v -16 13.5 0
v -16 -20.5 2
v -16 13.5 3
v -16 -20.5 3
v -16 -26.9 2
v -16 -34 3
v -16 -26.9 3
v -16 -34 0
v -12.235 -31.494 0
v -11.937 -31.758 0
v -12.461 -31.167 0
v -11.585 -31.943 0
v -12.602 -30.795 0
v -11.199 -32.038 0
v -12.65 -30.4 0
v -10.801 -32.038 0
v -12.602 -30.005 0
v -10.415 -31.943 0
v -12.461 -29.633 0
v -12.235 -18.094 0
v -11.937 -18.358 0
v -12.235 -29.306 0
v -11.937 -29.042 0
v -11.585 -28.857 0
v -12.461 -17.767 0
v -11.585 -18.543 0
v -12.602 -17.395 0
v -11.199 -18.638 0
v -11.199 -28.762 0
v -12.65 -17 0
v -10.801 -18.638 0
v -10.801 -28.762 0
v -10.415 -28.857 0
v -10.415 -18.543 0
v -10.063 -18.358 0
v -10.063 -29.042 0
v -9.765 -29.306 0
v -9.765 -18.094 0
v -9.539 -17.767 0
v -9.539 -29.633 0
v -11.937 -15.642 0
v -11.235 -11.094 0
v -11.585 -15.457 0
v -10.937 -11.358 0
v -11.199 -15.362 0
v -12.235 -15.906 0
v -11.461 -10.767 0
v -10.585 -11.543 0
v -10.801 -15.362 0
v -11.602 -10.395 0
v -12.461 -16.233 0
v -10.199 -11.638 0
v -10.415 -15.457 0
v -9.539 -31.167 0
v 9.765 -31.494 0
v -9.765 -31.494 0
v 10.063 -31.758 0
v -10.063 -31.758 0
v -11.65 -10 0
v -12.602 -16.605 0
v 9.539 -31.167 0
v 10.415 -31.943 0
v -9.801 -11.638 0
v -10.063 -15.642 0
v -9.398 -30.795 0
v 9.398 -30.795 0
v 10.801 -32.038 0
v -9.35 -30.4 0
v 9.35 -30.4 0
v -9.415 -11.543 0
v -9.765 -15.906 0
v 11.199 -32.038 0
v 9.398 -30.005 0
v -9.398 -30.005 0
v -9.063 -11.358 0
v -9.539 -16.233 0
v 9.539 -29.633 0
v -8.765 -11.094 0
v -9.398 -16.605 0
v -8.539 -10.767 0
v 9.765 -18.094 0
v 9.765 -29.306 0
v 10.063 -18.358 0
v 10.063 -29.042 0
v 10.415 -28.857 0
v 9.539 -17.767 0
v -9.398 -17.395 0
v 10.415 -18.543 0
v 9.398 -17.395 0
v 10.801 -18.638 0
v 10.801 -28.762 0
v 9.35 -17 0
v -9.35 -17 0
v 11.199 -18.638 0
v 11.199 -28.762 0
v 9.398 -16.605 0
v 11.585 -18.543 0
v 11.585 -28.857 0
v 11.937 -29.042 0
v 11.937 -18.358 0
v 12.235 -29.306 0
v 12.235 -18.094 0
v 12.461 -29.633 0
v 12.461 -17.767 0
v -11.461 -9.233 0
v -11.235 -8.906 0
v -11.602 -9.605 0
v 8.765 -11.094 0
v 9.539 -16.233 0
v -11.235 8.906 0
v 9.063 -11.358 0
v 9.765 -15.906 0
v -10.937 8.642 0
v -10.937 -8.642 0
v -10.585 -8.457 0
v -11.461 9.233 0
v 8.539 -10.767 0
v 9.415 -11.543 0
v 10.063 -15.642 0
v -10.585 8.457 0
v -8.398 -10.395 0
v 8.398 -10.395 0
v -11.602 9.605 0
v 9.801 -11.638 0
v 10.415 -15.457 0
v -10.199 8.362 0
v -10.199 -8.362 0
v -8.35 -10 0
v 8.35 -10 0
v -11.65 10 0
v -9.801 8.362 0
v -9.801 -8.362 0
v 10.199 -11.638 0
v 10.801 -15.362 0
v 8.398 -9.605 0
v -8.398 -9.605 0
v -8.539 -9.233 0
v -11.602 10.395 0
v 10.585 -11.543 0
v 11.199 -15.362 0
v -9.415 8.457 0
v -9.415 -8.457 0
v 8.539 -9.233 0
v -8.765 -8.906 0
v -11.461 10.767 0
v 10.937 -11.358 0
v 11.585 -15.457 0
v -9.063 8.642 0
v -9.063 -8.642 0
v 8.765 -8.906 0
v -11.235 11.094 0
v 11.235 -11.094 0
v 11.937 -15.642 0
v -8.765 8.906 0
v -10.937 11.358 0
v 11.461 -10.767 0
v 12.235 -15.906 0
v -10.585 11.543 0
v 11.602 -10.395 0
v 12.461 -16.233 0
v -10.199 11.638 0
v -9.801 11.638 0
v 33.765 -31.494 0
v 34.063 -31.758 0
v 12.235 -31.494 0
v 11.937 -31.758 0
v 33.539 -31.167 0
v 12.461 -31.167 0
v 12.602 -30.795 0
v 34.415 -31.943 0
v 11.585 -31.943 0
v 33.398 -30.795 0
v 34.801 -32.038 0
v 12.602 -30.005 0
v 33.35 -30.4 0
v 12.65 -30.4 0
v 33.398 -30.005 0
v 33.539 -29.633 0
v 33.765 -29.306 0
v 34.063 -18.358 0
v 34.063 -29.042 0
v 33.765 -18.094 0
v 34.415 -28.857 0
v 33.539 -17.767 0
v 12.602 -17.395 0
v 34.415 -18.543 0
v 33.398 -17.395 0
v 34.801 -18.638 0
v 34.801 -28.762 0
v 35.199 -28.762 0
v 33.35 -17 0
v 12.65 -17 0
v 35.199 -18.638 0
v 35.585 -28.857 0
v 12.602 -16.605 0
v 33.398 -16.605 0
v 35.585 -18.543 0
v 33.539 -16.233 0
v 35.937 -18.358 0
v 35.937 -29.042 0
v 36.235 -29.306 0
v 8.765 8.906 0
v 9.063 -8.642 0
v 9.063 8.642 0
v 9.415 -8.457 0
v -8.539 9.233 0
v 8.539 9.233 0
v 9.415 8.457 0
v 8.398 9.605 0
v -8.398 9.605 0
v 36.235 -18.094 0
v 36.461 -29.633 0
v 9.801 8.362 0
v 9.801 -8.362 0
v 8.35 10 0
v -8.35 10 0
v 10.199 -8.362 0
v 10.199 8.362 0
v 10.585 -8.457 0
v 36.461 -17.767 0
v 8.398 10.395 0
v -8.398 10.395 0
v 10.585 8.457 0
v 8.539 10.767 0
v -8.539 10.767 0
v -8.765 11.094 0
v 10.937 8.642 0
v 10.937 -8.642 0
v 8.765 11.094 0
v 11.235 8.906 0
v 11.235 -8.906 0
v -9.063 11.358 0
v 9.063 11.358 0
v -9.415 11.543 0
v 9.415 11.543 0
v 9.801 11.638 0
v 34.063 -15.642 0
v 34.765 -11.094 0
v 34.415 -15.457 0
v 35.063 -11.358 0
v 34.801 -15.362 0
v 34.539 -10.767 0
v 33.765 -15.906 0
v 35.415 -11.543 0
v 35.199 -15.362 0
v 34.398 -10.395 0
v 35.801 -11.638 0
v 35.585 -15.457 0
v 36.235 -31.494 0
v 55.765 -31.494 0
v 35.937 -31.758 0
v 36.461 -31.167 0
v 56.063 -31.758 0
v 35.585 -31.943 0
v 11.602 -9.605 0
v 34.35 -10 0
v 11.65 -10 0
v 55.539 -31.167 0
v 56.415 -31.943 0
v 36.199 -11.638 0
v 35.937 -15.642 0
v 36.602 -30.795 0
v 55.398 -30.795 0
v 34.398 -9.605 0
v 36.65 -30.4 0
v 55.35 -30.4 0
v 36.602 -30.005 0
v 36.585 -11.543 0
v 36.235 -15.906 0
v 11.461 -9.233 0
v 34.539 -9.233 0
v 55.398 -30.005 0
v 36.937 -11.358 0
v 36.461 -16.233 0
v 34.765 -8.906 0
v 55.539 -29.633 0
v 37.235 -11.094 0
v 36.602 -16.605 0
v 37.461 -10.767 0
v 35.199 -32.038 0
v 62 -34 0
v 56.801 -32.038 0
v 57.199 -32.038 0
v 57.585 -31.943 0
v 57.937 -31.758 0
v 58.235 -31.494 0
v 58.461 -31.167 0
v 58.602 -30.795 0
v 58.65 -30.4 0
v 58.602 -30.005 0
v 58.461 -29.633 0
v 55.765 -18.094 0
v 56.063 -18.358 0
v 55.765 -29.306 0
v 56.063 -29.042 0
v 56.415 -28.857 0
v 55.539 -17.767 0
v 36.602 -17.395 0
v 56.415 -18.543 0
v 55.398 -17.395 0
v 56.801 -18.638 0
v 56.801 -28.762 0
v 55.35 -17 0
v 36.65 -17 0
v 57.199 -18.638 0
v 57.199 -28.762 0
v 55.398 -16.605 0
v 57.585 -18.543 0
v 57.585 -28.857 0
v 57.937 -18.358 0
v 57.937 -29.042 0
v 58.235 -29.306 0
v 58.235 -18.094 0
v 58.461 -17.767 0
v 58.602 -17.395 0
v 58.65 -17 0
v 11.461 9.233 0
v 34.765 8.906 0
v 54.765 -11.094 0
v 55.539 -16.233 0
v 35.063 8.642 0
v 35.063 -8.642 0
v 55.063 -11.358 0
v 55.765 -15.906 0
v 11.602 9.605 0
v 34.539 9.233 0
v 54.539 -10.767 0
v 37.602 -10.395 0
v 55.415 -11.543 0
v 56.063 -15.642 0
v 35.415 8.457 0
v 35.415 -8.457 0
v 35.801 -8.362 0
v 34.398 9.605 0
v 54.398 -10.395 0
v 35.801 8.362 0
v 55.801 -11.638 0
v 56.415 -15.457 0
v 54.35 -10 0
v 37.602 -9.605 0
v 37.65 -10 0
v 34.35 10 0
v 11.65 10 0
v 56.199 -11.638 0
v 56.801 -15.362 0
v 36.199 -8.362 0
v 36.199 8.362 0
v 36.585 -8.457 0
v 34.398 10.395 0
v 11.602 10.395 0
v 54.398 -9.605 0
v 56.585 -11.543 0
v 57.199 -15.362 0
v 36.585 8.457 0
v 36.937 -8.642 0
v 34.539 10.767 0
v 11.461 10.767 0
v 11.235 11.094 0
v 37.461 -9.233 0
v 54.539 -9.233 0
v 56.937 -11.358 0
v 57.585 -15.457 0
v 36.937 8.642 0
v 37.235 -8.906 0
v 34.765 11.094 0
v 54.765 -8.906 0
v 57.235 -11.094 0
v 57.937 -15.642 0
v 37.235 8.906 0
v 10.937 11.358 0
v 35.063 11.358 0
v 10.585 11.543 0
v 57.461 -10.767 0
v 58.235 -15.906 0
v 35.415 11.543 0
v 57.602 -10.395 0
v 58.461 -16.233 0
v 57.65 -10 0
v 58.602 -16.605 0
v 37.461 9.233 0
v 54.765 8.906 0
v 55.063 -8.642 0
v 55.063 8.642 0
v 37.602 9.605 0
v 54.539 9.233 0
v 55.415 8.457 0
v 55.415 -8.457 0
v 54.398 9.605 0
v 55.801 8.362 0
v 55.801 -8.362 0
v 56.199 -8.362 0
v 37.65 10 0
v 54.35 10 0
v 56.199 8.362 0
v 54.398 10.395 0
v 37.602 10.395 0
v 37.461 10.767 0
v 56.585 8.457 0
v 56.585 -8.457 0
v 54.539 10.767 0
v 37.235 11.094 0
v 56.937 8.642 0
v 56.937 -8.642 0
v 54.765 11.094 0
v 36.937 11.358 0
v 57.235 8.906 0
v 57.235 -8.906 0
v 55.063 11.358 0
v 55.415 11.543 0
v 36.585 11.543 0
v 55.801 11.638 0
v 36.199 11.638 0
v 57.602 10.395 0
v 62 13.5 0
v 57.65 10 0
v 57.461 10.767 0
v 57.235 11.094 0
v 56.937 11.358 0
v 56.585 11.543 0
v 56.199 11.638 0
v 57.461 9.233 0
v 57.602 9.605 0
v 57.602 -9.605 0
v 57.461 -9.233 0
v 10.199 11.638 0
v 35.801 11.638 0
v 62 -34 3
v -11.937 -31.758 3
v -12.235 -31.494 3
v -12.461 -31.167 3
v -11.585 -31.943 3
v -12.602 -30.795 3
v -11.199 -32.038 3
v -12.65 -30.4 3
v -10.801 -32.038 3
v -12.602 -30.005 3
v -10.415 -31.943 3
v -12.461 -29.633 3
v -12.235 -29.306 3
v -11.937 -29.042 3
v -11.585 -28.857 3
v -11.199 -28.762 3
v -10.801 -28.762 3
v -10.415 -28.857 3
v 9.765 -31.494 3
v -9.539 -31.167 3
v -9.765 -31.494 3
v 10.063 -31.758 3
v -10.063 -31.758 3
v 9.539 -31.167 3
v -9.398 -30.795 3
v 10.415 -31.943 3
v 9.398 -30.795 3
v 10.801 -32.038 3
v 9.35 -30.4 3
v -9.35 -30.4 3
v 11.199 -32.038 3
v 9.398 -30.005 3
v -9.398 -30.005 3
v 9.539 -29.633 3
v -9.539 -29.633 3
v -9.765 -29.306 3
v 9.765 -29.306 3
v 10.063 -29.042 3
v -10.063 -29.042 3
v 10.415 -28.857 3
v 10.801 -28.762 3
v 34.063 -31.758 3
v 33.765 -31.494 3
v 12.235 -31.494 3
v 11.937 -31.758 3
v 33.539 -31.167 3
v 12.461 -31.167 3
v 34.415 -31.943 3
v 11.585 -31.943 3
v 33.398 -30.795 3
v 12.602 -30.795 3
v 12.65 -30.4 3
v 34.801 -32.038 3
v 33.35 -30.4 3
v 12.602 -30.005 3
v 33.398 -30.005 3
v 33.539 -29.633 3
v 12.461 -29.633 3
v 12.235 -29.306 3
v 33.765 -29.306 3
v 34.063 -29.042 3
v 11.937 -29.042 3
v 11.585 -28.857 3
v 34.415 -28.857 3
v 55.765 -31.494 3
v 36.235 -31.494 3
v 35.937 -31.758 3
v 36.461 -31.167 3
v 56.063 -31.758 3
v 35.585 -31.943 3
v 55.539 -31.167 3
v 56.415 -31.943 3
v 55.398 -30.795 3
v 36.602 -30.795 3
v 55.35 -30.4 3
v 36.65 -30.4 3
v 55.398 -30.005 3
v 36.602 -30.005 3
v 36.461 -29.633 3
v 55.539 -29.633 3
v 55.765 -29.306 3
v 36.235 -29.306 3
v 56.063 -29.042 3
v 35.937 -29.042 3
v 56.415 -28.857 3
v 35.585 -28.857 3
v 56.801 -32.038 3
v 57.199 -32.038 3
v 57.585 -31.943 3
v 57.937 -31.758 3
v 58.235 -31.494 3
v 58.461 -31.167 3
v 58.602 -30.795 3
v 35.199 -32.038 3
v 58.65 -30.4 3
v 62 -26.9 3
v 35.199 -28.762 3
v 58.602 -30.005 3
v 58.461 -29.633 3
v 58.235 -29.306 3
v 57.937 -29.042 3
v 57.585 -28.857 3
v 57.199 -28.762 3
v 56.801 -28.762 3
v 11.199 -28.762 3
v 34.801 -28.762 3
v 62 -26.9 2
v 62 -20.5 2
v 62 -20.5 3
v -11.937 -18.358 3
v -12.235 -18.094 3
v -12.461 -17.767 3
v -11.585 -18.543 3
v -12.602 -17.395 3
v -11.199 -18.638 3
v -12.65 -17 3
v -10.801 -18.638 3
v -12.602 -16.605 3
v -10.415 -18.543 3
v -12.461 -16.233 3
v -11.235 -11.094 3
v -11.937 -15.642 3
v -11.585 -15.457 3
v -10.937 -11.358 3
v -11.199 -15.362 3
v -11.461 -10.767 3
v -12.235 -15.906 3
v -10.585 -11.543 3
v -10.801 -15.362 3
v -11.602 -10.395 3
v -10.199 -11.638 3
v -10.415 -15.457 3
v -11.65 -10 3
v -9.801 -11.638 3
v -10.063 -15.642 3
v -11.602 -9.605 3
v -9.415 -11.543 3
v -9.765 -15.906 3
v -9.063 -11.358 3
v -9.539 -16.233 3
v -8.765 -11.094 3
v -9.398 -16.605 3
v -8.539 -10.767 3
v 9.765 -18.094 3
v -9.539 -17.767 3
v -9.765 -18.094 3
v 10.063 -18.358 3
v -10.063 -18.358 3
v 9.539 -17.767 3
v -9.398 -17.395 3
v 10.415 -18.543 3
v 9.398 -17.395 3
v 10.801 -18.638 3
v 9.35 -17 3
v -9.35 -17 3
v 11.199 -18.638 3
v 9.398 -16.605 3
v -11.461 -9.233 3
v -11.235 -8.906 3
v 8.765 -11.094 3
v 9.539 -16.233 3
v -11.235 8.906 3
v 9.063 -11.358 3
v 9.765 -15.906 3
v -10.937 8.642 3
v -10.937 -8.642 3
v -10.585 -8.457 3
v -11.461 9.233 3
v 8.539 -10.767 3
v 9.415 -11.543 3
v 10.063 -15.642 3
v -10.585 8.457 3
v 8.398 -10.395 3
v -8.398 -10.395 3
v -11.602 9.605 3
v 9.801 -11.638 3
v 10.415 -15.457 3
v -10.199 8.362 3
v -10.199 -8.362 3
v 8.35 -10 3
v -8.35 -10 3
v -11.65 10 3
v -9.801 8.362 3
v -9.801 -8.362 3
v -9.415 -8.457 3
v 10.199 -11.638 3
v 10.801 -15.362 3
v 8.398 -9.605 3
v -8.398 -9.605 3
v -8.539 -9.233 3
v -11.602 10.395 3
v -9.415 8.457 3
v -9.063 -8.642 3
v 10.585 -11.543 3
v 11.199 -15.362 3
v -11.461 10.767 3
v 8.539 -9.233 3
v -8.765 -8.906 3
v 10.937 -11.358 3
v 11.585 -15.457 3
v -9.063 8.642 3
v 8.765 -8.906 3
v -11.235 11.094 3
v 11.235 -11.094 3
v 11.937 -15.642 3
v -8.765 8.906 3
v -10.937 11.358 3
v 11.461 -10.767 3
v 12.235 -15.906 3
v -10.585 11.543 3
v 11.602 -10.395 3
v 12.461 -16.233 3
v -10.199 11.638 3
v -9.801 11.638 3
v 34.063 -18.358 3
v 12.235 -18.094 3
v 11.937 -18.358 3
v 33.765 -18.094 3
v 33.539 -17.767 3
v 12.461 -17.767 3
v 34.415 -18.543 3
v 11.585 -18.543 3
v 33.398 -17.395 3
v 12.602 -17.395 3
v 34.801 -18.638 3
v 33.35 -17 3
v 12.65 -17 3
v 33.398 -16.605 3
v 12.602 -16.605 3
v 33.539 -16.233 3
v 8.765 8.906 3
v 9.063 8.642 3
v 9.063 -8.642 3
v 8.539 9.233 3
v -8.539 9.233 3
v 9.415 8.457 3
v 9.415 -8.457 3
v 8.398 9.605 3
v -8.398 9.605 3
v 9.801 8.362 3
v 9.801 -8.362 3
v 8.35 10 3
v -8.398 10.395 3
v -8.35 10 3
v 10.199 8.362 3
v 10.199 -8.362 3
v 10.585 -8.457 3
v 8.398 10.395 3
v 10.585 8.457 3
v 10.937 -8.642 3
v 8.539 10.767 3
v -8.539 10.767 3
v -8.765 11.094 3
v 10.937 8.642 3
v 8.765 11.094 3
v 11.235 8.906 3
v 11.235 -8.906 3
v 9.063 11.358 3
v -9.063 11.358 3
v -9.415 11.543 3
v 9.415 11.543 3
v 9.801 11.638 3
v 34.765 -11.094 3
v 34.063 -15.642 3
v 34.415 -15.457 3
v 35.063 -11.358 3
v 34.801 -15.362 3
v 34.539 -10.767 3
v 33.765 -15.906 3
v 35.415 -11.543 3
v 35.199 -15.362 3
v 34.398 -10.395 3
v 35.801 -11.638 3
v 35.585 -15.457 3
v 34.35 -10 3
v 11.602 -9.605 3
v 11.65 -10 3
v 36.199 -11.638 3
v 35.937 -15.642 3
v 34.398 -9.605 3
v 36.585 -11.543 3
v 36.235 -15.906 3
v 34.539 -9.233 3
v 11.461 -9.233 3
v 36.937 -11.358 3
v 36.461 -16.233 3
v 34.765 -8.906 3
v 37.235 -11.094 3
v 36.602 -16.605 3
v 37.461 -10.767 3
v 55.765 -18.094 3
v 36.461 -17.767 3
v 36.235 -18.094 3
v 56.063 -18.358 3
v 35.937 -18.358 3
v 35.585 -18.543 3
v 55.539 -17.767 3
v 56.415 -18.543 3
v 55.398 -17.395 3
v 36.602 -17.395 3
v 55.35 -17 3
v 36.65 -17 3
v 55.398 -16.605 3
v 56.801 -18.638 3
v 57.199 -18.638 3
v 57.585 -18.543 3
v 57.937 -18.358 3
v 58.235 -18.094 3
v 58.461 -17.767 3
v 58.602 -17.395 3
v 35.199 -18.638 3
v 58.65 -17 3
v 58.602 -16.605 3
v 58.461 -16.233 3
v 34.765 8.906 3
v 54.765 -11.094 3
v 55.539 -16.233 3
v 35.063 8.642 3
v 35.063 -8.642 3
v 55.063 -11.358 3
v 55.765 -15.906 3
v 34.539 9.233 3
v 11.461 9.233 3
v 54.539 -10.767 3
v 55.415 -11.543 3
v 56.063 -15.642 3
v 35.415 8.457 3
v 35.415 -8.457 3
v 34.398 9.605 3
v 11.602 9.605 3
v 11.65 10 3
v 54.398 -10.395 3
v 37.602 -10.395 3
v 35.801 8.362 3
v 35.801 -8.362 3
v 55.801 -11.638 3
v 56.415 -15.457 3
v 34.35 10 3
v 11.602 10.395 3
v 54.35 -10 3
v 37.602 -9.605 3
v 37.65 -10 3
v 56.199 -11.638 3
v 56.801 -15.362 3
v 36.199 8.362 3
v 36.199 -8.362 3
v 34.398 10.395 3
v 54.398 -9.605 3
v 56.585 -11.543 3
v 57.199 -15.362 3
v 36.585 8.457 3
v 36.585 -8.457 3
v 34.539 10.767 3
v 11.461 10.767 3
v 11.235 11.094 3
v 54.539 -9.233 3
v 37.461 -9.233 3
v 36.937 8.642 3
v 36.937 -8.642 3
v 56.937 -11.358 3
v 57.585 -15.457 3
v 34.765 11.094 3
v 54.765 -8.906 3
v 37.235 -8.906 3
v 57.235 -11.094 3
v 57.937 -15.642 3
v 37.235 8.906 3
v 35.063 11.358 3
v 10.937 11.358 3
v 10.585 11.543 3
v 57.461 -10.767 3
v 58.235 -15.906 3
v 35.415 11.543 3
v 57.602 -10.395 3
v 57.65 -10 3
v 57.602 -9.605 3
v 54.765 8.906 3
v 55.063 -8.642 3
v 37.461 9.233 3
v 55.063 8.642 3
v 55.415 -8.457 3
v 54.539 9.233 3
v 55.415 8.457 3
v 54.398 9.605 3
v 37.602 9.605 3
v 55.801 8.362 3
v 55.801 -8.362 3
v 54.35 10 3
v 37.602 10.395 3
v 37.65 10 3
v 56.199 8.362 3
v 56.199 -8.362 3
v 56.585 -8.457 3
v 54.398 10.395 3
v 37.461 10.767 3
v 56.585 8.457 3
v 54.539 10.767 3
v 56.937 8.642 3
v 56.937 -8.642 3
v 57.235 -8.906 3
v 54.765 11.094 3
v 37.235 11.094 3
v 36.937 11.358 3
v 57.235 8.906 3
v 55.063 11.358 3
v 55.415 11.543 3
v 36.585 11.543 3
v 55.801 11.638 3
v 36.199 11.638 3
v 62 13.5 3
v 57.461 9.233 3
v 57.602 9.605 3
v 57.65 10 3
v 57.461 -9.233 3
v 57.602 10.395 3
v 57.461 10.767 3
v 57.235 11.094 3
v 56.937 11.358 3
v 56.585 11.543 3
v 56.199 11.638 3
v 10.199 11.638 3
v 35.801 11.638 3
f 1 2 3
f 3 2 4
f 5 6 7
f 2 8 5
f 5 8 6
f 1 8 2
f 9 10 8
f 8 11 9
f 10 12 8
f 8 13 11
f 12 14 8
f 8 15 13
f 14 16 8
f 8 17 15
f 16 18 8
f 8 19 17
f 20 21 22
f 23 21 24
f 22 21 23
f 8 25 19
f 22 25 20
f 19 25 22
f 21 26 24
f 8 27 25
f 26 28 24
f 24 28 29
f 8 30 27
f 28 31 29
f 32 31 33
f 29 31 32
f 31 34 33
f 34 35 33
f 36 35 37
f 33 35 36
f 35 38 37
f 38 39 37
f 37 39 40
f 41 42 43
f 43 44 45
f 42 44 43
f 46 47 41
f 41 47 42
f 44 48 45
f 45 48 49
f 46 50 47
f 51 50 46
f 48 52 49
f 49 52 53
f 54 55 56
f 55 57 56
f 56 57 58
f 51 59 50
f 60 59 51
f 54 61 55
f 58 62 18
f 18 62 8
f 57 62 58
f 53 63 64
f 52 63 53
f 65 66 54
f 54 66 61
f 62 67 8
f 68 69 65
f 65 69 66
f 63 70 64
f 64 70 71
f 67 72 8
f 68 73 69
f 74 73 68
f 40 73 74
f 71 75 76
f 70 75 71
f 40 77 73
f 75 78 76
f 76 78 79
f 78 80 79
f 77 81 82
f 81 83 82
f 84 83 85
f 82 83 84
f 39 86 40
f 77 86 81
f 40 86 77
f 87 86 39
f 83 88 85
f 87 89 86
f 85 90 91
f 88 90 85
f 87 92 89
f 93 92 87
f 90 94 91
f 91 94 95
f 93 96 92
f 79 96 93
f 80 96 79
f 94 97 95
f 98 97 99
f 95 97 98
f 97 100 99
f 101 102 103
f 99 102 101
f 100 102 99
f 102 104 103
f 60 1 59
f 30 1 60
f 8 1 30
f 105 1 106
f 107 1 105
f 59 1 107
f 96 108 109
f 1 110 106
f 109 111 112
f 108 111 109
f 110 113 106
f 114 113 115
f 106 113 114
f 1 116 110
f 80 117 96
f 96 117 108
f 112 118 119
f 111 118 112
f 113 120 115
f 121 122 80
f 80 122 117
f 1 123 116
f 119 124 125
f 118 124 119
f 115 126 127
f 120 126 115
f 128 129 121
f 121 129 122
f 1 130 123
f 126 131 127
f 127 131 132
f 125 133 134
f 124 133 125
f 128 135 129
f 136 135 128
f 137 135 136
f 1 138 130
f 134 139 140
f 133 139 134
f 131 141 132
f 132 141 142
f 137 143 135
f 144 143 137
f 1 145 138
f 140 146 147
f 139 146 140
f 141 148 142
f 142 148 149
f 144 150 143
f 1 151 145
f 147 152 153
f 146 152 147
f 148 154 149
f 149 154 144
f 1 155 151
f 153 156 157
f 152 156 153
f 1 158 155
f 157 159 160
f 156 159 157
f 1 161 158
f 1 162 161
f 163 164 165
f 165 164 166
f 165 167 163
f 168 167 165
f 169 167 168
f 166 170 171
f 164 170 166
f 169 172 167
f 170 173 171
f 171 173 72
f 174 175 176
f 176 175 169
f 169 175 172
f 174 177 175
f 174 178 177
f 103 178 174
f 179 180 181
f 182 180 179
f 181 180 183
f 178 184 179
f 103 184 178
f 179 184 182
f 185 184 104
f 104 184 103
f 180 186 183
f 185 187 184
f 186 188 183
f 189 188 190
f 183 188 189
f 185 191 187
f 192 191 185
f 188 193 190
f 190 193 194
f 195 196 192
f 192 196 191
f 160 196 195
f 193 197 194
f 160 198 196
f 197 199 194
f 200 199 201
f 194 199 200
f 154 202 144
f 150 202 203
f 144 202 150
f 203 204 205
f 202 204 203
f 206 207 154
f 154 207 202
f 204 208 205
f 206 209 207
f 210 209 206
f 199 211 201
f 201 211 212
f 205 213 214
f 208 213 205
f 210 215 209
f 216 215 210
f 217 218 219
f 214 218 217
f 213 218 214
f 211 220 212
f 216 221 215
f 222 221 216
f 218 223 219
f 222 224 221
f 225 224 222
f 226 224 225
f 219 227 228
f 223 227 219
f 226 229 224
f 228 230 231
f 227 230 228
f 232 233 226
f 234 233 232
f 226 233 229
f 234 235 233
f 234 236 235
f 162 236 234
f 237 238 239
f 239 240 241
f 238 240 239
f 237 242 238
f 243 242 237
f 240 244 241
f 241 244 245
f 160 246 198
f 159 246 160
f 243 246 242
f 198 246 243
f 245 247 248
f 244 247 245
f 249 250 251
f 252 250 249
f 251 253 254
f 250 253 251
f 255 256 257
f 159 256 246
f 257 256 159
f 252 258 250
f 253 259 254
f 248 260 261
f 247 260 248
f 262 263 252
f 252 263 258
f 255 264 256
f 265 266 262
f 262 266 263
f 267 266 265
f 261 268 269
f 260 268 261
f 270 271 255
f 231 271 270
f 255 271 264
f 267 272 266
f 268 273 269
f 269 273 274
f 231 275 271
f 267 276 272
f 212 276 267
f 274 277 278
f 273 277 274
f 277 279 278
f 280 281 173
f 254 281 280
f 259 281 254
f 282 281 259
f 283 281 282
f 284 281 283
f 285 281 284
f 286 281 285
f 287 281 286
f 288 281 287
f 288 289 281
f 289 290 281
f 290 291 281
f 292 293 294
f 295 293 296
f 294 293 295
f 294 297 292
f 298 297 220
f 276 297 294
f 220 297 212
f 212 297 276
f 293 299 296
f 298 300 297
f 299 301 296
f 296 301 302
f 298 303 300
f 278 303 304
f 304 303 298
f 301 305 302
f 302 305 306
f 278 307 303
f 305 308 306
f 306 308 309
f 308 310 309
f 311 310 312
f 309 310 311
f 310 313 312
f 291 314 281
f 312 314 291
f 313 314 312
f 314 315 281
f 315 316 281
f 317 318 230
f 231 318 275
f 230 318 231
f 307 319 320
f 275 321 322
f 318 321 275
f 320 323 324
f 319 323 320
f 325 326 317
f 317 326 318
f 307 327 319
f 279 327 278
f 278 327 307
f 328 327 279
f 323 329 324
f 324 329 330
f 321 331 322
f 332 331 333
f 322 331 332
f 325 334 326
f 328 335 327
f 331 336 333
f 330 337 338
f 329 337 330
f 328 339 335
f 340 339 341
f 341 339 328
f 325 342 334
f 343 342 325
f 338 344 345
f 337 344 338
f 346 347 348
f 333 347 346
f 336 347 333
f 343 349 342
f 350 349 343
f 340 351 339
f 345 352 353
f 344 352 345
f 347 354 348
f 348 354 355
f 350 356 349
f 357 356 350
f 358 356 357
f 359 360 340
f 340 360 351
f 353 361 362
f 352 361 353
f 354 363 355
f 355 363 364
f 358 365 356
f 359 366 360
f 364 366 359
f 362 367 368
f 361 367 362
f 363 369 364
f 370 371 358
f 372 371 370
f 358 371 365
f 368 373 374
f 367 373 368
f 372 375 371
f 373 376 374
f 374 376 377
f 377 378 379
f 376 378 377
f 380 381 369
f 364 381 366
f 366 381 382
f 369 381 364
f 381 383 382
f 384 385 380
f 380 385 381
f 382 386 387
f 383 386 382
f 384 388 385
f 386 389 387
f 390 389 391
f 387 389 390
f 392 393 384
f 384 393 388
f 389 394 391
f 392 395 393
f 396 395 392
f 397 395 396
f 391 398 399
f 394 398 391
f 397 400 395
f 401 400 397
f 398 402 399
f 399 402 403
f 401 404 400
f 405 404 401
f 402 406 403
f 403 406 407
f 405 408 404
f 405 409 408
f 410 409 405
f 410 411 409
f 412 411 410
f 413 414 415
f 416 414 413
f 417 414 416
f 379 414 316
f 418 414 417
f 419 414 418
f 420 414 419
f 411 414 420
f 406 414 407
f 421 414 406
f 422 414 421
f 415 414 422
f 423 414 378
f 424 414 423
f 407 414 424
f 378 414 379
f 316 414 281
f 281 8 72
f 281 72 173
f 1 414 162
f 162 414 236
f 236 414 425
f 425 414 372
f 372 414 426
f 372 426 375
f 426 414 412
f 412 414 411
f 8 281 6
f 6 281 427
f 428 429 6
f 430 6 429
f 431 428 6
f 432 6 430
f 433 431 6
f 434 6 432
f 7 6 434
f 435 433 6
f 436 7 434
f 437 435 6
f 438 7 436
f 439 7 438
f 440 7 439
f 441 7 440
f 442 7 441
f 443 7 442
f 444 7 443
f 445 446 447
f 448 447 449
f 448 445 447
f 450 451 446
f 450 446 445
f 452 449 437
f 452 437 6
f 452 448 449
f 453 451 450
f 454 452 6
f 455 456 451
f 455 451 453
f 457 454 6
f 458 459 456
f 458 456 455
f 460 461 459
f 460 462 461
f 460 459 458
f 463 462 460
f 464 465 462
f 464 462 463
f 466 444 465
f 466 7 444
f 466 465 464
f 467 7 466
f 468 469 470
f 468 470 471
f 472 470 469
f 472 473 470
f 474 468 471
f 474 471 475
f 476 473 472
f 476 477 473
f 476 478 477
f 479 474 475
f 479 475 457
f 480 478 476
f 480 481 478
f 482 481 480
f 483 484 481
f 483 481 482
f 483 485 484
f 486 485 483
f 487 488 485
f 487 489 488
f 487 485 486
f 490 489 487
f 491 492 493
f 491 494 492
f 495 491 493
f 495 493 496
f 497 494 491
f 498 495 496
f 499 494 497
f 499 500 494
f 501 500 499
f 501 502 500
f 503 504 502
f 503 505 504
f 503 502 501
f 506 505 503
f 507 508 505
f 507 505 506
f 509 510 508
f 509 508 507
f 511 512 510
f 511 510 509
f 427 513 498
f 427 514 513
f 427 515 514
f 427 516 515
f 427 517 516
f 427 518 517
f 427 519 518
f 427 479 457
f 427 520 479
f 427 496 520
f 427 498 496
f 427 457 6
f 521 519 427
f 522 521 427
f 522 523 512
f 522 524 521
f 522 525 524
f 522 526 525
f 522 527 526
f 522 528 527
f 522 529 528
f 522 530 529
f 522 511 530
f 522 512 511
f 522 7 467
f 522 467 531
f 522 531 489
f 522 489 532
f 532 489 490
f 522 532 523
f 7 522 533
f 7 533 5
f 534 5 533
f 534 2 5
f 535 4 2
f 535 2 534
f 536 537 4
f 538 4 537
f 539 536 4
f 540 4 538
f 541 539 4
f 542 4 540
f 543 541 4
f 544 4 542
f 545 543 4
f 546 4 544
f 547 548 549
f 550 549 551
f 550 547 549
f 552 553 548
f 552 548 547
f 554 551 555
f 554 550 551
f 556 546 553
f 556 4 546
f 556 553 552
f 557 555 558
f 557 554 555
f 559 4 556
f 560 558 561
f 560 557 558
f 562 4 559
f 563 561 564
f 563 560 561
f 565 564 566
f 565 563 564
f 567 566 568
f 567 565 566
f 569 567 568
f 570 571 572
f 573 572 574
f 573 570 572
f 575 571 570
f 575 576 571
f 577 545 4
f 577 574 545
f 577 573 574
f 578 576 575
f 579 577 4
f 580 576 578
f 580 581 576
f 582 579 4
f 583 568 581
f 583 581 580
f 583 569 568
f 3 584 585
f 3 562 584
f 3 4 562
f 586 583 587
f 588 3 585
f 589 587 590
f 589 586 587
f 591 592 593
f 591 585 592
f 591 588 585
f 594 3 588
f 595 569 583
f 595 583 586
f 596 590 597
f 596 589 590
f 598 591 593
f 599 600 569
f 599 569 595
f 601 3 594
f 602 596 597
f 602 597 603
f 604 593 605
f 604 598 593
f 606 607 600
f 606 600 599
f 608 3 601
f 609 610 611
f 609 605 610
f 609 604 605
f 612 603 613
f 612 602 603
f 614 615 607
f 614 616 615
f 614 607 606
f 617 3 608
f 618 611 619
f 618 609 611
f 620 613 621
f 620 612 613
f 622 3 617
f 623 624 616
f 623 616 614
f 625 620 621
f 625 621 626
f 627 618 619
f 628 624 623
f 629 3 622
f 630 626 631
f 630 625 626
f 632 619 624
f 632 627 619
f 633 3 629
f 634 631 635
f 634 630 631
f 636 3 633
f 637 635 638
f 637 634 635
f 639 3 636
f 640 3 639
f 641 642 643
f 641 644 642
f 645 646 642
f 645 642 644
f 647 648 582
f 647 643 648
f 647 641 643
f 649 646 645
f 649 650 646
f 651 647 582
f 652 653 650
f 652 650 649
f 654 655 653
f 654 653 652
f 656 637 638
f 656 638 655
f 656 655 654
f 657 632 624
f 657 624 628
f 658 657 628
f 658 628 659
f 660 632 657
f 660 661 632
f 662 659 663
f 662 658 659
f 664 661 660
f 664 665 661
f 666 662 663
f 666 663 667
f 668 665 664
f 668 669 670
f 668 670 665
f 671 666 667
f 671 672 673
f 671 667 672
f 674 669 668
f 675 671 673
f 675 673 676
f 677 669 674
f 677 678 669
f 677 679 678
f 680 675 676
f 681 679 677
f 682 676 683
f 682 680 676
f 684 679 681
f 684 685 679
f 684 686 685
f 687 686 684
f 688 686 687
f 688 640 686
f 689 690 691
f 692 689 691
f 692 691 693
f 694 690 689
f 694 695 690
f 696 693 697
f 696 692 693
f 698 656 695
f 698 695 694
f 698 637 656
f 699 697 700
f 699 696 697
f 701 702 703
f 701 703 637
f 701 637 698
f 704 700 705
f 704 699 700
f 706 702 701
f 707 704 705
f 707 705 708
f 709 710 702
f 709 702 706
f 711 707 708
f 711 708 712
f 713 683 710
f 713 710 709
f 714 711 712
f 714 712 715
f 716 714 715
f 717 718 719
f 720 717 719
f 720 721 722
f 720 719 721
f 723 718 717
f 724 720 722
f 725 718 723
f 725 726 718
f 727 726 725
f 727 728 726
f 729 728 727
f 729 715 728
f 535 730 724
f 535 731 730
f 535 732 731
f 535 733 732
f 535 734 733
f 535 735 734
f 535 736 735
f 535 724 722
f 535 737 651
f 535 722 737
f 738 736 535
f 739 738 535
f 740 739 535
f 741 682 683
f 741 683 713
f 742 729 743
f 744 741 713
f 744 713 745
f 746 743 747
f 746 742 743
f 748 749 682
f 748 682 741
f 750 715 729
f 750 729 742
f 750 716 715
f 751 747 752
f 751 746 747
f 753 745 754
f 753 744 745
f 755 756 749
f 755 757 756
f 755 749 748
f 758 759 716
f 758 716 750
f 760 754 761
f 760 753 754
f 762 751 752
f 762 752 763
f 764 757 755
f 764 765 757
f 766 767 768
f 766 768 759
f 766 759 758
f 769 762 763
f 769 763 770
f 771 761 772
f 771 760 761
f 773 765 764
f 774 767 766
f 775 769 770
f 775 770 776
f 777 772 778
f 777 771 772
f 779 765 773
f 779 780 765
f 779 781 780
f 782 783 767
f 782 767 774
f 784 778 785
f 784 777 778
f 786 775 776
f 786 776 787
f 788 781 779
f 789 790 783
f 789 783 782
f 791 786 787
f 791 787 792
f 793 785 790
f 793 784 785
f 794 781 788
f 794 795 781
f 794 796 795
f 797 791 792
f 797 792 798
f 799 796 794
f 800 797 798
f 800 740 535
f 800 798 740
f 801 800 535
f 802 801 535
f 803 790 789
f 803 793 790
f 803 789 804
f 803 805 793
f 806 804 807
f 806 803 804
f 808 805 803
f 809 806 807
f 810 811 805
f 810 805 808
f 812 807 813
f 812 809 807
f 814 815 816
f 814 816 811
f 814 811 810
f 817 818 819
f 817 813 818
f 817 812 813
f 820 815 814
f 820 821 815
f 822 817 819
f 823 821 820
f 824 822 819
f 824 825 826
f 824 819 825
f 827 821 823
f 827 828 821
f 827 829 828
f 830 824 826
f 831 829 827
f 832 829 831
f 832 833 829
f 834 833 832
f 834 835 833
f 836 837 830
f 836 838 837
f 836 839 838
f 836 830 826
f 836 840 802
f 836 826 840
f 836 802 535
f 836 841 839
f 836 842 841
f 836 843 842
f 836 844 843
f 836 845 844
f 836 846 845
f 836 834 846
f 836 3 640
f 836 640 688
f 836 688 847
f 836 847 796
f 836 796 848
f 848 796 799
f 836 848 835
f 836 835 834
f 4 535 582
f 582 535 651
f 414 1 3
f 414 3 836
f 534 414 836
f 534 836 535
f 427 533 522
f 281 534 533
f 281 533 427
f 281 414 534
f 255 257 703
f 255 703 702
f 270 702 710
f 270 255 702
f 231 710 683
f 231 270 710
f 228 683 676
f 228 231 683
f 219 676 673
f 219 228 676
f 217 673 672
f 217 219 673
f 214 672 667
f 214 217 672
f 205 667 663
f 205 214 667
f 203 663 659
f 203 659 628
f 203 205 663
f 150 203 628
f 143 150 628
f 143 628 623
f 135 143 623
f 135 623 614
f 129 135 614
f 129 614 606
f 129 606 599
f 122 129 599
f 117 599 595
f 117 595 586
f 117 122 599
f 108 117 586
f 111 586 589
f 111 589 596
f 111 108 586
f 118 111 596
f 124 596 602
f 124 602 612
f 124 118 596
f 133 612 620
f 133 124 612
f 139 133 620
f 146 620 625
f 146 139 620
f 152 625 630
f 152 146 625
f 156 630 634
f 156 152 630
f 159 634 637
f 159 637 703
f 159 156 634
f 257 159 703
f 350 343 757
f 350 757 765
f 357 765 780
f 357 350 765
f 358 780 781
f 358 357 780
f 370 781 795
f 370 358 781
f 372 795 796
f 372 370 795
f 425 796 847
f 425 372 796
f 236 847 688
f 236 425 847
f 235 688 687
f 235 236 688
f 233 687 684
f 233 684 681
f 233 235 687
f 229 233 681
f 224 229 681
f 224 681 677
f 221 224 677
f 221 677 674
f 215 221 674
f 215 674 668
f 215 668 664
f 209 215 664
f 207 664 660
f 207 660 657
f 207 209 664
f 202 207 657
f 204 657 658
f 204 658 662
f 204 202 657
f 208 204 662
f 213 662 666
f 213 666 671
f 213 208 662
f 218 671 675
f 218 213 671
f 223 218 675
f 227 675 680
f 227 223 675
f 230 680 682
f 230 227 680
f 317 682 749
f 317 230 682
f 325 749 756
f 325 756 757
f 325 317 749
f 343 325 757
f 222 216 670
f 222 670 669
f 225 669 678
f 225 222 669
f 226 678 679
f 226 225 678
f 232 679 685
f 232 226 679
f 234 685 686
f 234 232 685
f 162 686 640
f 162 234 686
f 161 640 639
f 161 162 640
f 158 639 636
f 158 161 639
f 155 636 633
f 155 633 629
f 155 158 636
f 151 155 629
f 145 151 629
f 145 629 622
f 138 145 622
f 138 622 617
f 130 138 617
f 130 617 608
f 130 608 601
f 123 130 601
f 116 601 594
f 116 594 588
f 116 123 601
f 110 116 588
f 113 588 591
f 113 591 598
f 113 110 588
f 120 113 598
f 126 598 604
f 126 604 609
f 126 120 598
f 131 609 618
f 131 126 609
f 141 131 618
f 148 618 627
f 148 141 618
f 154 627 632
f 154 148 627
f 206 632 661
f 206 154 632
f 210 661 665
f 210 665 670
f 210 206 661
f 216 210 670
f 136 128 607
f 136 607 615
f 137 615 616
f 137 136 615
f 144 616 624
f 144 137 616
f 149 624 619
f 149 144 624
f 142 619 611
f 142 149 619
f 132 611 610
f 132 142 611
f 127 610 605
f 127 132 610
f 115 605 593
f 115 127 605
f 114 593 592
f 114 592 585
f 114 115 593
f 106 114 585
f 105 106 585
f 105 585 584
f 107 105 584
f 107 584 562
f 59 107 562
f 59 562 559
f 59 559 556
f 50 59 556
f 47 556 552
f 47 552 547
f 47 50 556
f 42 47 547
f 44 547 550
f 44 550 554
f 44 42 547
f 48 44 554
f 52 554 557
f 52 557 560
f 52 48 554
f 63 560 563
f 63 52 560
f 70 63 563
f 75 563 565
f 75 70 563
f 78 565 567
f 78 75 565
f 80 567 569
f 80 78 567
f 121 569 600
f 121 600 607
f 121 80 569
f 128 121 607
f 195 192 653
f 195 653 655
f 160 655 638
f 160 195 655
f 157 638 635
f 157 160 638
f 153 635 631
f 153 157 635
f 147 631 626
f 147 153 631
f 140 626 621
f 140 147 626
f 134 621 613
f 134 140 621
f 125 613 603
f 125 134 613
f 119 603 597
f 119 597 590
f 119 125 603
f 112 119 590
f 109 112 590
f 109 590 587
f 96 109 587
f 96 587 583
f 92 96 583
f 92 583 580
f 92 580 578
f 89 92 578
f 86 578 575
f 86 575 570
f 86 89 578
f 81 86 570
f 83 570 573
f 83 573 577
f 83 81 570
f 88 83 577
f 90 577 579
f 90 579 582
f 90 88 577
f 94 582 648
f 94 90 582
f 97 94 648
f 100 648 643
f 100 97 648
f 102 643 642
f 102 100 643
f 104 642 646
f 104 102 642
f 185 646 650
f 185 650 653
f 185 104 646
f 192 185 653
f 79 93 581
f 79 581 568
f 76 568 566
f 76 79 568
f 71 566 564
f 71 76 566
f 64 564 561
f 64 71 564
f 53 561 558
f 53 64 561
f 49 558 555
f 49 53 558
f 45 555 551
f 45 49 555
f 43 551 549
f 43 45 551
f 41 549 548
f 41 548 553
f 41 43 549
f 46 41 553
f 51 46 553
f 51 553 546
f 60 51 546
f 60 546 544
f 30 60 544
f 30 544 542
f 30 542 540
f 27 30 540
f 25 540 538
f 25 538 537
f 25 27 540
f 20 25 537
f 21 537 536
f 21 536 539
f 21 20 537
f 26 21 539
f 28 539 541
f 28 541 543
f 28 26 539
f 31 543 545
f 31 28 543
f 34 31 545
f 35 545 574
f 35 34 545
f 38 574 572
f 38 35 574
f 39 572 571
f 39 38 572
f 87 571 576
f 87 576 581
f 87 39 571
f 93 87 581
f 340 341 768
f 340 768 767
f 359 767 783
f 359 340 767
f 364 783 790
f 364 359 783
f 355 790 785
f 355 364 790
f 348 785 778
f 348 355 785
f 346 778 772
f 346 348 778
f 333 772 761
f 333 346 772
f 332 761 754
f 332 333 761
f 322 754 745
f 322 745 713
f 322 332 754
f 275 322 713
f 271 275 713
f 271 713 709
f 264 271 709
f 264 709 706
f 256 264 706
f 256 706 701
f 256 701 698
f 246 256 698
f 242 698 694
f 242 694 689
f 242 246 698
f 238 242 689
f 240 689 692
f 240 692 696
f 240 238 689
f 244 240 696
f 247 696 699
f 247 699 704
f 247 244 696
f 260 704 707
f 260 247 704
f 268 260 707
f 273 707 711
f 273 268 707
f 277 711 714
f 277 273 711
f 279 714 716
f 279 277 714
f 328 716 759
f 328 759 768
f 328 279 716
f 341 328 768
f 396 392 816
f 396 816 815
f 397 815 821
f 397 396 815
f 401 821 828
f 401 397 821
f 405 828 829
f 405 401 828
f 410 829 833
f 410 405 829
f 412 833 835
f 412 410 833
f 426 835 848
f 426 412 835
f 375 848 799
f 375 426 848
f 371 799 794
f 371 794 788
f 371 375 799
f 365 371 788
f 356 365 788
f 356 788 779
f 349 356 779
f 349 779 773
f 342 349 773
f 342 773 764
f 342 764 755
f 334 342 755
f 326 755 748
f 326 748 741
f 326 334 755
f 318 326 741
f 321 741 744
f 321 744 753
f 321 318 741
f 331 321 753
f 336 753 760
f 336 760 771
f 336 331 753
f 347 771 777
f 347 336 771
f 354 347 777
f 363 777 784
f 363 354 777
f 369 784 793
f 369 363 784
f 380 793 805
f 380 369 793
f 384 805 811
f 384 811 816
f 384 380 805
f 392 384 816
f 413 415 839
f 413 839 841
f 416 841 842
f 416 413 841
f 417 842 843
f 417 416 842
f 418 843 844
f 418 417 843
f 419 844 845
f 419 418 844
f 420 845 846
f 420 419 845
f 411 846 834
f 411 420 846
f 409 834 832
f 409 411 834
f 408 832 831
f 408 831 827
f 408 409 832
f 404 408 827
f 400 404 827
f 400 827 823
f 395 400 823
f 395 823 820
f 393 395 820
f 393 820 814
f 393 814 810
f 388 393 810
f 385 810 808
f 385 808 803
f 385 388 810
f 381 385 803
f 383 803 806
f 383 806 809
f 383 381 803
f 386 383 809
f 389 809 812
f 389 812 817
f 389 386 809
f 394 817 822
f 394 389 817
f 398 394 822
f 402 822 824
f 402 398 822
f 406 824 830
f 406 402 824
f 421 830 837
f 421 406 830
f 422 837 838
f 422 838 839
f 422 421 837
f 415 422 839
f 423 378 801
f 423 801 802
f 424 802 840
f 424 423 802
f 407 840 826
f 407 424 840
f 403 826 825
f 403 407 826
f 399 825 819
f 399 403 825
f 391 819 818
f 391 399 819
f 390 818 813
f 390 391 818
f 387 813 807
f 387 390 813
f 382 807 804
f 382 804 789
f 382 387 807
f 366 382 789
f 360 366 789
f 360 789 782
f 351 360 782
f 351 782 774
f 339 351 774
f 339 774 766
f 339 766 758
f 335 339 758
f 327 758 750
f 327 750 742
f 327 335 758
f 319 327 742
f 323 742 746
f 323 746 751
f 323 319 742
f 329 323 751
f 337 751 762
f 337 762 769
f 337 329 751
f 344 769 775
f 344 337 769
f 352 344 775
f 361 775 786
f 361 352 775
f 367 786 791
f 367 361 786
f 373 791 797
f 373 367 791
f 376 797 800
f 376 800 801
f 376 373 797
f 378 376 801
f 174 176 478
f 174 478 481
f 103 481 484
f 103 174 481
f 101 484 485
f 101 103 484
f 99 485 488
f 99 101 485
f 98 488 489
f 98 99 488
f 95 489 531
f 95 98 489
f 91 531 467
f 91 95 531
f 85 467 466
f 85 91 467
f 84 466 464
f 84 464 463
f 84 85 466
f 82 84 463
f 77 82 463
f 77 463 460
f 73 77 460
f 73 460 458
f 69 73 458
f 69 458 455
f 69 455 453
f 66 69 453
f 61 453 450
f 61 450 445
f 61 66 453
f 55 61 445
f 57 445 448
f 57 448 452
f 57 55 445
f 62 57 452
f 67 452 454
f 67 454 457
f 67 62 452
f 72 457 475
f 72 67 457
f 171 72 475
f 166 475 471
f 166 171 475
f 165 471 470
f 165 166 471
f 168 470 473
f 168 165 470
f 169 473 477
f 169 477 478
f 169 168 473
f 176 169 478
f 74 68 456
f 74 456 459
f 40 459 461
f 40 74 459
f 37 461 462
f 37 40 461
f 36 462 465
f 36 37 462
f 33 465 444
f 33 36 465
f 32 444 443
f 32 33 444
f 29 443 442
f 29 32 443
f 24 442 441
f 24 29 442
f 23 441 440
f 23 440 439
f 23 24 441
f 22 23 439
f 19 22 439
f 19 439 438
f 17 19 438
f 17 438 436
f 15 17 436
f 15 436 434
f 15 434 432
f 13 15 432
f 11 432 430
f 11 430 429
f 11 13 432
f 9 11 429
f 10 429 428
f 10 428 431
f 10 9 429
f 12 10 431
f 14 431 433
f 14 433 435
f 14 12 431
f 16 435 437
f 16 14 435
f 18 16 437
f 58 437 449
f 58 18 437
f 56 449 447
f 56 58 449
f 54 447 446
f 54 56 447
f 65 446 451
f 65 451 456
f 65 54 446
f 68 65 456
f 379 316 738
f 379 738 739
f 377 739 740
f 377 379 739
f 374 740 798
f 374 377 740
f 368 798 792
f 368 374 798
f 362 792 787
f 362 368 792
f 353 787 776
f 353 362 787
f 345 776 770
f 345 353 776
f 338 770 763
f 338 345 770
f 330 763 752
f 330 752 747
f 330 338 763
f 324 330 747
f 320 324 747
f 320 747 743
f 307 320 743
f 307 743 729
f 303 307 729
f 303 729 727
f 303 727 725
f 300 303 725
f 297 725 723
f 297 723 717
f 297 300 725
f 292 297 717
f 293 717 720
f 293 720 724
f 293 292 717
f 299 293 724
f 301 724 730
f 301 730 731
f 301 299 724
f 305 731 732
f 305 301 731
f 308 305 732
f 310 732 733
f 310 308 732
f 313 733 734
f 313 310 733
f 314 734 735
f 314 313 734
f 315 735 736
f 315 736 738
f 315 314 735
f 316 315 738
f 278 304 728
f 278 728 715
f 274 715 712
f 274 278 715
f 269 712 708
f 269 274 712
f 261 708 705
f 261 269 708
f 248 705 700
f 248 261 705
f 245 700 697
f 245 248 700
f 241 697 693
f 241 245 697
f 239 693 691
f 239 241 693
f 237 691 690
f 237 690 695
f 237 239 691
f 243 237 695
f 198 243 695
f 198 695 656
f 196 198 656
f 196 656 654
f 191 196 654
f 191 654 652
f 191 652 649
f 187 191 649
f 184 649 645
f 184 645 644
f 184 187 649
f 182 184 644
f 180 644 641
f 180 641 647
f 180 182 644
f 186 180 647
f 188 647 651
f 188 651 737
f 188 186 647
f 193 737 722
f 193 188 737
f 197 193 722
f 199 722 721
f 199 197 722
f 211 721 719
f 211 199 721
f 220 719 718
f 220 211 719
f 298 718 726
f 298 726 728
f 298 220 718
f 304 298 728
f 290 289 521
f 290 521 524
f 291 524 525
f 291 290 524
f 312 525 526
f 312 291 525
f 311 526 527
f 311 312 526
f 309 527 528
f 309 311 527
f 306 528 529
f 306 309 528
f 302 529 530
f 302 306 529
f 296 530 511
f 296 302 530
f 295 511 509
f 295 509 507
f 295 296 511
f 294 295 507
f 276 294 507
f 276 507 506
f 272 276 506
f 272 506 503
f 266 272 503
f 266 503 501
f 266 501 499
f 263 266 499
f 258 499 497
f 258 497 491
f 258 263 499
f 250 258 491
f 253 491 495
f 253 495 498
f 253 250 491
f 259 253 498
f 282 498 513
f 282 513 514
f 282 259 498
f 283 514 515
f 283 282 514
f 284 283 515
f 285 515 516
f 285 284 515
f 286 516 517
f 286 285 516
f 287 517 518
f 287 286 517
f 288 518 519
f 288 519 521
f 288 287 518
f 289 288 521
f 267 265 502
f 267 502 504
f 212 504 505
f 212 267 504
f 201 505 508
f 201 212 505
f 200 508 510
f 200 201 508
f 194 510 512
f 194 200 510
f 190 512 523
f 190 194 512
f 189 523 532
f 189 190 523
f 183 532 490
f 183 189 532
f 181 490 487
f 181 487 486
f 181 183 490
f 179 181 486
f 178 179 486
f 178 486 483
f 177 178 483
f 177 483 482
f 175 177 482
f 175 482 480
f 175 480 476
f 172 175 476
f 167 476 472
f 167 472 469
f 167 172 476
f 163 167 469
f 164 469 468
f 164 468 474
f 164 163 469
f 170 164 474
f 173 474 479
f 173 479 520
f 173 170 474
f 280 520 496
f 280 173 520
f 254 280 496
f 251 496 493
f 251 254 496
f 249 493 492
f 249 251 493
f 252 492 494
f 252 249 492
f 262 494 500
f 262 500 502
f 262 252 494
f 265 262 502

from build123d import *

# Parameters (mm, degrees)
SKETCH_W     = 78
SKETCH_H     = 47.5
SKETCH_R     = 1.65
PAD_DEPTH    = 3
SKETCH001_W  = 105.620613
SKETCH001_H  = 6.4
POCKET_DEPTH = 1


with BuildPart() as part:
    # Sketch → Pad (new body)
    with BuildSketch(Plane.XY):
        with Locations((23, -10.25)):
            Rectangle(SKETCH_W, SKETCH_H)
        with Locations((-10, -10)):
            Circle(SKETCH_R, mode=Mode.SUBTRACT)
        with Locations((-10, 10)):
            Circle(SKETCH_R, mode=Mode.SUBTRACT)
        with Locations((10, 10)):
            Circle(SKETCH_R, mode=Mode.SUBTRACT)
        with Locations((10, -10)):
            Circle(SKETCH_R, mode=Mode.SUBTRACT)
        with Locations((-11, -17)):
            Circle(SKETCH_R, mode=Mode.SUBTRACT)
        with Locations((11, -17)):
            Circle(SKETCH_R, mode=Mode.SUBTRACT)
        with Locations((-11, -30.4)):
            Circle(SKETCH_R, mode=Mode.SUBTRACT)
        with Locations((11, -30.4)):
            Circle(SKETCH_R, mode=Mode.SUBTRACT)
        with Locations((56, -10)):
            Circle(SKETCH_R, mode=Mode.SUBTRACT)
        with Locations((56, 10)):
            Circle(SKETCH_R, mode=Mode.SUBTRACT)
        with Locations((36, 10)):
            Circle(SKETCH_R, mode=Mode.SUBTRACT)
        with Locations((36, -10)):
            Circle(SKETCH_R, mode=Mode.SUBTRACT)
        with Locations((35, -17)):
            Circle(SKETCH_R, mode=Mode.SUBTRACT)
        with Locations((35, -30.4)):
            Circle(SKETCH_R, mode=Mode.SUBTRACT)
        with Locations((57, -17)):
            Circle(SKETCH_R, mode=Mode.SUBTRACT)
        with Locations((57, -30.4)):
            Circle(SKETCH_R, mode=Mode.SUBTRACT)
    extrude(amount=PAD_DEPTH)

    # Sketch001 → Pocket (cut)
    with BuildSketch(Plane.XY.offset(3)):
        with Locations((22.581388, -23.7)):
            Rectangle(SKETCH001_W, SKETCH001_H)
    extrude(amount=-POCKET_DEPTH, mode=Mode.SUBTRACT)


solid = part.part
